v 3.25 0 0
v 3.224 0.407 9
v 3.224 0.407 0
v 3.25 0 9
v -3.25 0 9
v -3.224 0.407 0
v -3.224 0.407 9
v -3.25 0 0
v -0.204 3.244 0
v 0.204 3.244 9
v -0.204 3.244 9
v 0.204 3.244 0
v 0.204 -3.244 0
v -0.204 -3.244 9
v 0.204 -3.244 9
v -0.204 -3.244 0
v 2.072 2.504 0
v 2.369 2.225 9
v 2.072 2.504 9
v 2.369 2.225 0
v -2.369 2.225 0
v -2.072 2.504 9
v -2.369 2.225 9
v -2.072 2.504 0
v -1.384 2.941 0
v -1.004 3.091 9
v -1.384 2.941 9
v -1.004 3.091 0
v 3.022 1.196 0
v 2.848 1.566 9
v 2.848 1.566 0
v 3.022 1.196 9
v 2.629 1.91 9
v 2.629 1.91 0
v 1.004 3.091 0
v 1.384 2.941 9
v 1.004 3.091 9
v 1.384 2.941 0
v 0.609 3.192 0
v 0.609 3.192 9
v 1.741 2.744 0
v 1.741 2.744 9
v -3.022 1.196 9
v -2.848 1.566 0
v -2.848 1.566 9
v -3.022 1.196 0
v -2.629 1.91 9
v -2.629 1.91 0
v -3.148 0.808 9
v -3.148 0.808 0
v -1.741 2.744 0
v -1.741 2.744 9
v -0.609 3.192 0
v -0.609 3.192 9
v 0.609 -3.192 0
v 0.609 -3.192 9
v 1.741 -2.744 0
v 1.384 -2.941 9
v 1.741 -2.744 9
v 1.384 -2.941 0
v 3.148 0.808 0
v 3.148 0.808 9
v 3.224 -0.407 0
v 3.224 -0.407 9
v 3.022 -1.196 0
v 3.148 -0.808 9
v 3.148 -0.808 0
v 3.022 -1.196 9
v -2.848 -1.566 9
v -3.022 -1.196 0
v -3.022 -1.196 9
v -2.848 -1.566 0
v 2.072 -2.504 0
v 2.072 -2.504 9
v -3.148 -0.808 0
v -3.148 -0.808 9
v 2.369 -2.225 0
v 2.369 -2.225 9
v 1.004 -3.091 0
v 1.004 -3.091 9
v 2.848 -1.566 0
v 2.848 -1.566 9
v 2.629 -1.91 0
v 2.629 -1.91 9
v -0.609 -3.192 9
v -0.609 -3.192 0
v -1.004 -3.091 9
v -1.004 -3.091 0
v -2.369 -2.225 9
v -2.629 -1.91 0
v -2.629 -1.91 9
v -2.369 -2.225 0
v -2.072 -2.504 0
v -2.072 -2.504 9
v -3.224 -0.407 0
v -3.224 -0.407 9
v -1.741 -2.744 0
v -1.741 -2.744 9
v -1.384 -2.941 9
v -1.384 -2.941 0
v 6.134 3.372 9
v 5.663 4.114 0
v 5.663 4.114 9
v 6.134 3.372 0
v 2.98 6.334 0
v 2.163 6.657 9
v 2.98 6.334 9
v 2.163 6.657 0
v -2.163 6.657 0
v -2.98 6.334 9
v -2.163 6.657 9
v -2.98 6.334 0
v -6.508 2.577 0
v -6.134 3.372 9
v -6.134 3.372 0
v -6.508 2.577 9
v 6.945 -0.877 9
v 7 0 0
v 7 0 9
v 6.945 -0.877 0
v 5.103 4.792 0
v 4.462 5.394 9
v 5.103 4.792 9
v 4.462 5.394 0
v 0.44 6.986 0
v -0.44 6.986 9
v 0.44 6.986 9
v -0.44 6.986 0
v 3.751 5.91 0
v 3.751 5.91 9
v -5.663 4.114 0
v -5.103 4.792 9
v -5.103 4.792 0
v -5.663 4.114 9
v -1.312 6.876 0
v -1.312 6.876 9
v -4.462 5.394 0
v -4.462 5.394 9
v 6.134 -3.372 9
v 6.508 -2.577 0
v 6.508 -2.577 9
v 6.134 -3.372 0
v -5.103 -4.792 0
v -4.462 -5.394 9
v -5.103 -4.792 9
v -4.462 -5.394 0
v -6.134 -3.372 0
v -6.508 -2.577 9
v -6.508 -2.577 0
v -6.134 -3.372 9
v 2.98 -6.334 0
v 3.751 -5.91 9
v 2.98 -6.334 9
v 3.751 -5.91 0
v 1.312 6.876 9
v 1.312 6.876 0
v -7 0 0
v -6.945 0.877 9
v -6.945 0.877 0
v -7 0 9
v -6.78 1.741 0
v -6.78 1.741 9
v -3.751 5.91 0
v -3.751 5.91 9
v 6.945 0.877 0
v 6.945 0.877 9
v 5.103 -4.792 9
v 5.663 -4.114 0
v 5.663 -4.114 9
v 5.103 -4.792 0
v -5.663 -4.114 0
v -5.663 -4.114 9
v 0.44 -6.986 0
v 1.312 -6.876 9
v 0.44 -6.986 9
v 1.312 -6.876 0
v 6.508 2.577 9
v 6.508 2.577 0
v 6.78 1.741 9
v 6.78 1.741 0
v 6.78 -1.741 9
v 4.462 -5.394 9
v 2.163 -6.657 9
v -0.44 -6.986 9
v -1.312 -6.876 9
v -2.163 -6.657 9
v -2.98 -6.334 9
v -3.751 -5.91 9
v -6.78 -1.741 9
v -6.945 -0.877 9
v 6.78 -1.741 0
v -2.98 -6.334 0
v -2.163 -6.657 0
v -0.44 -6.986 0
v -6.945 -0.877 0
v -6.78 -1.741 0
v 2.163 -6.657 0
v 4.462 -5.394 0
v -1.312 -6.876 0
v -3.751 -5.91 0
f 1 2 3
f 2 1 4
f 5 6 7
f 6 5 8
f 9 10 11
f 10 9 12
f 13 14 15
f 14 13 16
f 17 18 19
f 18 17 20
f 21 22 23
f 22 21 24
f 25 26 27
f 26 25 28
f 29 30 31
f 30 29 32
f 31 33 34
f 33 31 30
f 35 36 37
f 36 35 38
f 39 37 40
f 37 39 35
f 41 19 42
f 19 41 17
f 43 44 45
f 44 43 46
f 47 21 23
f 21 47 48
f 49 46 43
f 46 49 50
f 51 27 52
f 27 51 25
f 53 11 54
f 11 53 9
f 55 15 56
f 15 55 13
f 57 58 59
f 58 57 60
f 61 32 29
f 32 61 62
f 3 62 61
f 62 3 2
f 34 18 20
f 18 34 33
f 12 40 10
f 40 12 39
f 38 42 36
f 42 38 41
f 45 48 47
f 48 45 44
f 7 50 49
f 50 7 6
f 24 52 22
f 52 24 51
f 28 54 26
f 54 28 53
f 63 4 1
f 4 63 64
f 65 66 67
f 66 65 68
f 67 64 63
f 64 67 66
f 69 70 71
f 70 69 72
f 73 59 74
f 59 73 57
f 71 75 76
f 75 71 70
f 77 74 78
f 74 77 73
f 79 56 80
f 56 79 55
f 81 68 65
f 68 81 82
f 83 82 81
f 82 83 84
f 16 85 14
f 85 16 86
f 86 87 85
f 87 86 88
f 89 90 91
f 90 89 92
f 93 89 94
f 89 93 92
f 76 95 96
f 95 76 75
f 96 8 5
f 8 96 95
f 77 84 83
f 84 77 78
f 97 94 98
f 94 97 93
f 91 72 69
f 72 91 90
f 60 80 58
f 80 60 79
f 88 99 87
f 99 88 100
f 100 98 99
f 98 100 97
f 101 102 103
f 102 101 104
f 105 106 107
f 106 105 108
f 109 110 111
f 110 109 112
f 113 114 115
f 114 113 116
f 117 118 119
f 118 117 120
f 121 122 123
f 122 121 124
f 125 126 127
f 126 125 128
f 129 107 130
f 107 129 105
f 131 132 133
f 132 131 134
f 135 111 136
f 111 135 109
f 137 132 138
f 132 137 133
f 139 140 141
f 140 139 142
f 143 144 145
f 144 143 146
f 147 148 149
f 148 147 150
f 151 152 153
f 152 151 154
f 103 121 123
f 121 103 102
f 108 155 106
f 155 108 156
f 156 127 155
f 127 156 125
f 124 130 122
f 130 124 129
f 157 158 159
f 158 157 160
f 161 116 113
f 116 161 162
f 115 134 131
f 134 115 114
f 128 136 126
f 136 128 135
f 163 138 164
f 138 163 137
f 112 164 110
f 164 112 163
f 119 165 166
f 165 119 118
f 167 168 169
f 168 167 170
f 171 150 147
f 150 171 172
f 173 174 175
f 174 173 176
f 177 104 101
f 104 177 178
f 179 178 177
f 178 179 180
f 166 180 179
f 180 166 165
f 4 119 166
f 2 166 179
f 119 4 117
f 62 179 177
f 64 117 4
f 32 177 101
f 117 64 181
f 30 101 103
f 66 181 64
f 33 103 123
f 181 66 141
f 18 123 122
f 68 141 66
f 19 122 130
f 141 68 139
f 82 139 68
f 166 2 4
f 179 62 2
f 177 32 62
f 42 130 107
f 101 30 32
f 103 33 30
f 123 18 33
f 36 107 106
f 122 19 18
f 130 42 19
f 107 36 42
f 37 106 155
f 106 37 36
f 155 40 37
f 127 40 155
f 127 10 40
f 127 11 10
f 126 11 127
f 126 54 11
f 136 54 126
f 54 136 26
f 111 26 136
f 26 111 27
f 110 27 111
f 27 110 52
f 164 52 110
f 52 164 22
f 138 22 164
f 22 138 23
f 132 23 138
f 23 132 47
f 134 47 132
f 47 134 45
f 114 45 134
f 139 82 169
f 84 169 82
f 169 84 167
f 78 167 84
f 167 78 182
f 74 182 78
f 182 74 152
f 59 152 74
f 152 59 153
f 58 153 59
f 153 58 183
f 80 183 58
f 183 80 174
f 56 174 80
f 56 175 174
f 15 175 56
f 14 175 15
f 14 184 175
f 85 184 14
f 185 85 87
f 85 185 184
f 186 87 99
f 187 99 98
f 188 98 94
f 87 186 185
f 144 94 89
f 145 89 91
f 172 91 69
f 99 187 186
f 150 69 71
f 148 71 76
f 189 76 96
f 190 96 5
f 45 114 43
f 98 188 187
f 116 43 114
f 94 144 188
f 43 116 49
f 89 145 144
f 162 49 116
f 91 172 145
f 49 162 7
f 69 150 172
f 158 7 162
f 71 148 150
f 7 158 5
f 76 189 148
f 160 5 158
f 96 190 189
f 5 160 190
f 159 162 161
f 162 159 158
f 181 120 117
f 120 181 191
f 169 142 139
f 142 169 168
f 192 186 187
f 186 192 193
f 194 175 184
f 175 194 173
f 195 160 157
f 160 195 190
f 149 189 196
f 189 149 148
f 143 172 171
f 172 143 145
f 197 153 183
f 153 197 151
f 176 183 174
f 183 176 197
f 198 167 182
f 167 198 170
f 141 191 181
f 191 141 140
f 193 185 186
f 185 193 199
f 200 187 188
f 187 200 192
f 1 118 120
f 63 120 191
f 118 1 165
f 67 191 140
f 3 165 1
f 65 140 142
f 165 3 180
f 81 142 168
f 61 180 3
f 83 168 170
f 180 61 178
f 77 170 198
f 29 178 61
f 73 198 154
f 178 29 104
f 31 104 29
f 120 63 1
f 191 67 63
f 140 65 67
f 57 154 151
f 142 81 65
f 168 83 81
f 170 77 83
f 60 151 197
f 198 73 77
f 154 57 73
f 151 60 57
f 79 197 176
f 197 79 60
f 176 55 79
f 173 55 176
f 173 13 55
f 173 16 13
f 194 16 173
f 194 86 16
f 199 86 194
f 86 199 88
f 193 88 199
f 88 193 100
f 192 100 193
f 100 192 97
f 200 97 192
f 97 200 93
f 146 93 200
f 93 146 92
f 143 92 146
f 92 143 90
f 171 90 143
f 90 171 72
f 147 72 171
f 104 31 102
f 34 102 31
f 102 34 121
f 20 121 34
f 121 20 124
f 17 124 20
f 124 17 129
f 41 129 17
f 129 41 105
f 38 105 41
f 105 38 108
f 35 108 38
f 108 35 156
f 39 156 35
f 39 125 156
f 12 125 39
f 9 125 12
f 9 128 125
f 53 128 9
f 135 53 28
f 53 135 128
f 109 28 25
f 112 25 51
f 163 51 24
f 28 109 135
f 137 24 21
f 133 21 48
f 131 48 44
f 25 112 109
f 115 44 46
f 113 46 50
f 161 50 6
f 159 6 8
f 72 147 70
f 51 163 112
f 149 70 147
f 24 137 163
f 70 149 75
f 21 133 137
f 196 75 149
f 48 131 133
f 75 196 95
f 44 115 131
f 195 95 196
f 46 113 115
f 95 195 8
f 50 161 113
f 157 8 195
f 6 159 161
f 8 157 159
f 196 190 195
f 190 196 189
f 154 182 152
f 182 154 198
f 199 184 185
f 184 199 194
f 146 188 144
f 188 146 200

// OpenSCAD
$fn = 50;


difference() {
	union() {
		cylinder(h = 9, r = 7.0000000000);
	}
	union() {
		translate(v = [0, 0, -100]) {
			cylinder(h = 200, r = 3.2500000000);
		}
		translate(v = [0, 0, -100]) {
			cylinder(h = 200, r = 1.8000000000);
		}
	}
}
